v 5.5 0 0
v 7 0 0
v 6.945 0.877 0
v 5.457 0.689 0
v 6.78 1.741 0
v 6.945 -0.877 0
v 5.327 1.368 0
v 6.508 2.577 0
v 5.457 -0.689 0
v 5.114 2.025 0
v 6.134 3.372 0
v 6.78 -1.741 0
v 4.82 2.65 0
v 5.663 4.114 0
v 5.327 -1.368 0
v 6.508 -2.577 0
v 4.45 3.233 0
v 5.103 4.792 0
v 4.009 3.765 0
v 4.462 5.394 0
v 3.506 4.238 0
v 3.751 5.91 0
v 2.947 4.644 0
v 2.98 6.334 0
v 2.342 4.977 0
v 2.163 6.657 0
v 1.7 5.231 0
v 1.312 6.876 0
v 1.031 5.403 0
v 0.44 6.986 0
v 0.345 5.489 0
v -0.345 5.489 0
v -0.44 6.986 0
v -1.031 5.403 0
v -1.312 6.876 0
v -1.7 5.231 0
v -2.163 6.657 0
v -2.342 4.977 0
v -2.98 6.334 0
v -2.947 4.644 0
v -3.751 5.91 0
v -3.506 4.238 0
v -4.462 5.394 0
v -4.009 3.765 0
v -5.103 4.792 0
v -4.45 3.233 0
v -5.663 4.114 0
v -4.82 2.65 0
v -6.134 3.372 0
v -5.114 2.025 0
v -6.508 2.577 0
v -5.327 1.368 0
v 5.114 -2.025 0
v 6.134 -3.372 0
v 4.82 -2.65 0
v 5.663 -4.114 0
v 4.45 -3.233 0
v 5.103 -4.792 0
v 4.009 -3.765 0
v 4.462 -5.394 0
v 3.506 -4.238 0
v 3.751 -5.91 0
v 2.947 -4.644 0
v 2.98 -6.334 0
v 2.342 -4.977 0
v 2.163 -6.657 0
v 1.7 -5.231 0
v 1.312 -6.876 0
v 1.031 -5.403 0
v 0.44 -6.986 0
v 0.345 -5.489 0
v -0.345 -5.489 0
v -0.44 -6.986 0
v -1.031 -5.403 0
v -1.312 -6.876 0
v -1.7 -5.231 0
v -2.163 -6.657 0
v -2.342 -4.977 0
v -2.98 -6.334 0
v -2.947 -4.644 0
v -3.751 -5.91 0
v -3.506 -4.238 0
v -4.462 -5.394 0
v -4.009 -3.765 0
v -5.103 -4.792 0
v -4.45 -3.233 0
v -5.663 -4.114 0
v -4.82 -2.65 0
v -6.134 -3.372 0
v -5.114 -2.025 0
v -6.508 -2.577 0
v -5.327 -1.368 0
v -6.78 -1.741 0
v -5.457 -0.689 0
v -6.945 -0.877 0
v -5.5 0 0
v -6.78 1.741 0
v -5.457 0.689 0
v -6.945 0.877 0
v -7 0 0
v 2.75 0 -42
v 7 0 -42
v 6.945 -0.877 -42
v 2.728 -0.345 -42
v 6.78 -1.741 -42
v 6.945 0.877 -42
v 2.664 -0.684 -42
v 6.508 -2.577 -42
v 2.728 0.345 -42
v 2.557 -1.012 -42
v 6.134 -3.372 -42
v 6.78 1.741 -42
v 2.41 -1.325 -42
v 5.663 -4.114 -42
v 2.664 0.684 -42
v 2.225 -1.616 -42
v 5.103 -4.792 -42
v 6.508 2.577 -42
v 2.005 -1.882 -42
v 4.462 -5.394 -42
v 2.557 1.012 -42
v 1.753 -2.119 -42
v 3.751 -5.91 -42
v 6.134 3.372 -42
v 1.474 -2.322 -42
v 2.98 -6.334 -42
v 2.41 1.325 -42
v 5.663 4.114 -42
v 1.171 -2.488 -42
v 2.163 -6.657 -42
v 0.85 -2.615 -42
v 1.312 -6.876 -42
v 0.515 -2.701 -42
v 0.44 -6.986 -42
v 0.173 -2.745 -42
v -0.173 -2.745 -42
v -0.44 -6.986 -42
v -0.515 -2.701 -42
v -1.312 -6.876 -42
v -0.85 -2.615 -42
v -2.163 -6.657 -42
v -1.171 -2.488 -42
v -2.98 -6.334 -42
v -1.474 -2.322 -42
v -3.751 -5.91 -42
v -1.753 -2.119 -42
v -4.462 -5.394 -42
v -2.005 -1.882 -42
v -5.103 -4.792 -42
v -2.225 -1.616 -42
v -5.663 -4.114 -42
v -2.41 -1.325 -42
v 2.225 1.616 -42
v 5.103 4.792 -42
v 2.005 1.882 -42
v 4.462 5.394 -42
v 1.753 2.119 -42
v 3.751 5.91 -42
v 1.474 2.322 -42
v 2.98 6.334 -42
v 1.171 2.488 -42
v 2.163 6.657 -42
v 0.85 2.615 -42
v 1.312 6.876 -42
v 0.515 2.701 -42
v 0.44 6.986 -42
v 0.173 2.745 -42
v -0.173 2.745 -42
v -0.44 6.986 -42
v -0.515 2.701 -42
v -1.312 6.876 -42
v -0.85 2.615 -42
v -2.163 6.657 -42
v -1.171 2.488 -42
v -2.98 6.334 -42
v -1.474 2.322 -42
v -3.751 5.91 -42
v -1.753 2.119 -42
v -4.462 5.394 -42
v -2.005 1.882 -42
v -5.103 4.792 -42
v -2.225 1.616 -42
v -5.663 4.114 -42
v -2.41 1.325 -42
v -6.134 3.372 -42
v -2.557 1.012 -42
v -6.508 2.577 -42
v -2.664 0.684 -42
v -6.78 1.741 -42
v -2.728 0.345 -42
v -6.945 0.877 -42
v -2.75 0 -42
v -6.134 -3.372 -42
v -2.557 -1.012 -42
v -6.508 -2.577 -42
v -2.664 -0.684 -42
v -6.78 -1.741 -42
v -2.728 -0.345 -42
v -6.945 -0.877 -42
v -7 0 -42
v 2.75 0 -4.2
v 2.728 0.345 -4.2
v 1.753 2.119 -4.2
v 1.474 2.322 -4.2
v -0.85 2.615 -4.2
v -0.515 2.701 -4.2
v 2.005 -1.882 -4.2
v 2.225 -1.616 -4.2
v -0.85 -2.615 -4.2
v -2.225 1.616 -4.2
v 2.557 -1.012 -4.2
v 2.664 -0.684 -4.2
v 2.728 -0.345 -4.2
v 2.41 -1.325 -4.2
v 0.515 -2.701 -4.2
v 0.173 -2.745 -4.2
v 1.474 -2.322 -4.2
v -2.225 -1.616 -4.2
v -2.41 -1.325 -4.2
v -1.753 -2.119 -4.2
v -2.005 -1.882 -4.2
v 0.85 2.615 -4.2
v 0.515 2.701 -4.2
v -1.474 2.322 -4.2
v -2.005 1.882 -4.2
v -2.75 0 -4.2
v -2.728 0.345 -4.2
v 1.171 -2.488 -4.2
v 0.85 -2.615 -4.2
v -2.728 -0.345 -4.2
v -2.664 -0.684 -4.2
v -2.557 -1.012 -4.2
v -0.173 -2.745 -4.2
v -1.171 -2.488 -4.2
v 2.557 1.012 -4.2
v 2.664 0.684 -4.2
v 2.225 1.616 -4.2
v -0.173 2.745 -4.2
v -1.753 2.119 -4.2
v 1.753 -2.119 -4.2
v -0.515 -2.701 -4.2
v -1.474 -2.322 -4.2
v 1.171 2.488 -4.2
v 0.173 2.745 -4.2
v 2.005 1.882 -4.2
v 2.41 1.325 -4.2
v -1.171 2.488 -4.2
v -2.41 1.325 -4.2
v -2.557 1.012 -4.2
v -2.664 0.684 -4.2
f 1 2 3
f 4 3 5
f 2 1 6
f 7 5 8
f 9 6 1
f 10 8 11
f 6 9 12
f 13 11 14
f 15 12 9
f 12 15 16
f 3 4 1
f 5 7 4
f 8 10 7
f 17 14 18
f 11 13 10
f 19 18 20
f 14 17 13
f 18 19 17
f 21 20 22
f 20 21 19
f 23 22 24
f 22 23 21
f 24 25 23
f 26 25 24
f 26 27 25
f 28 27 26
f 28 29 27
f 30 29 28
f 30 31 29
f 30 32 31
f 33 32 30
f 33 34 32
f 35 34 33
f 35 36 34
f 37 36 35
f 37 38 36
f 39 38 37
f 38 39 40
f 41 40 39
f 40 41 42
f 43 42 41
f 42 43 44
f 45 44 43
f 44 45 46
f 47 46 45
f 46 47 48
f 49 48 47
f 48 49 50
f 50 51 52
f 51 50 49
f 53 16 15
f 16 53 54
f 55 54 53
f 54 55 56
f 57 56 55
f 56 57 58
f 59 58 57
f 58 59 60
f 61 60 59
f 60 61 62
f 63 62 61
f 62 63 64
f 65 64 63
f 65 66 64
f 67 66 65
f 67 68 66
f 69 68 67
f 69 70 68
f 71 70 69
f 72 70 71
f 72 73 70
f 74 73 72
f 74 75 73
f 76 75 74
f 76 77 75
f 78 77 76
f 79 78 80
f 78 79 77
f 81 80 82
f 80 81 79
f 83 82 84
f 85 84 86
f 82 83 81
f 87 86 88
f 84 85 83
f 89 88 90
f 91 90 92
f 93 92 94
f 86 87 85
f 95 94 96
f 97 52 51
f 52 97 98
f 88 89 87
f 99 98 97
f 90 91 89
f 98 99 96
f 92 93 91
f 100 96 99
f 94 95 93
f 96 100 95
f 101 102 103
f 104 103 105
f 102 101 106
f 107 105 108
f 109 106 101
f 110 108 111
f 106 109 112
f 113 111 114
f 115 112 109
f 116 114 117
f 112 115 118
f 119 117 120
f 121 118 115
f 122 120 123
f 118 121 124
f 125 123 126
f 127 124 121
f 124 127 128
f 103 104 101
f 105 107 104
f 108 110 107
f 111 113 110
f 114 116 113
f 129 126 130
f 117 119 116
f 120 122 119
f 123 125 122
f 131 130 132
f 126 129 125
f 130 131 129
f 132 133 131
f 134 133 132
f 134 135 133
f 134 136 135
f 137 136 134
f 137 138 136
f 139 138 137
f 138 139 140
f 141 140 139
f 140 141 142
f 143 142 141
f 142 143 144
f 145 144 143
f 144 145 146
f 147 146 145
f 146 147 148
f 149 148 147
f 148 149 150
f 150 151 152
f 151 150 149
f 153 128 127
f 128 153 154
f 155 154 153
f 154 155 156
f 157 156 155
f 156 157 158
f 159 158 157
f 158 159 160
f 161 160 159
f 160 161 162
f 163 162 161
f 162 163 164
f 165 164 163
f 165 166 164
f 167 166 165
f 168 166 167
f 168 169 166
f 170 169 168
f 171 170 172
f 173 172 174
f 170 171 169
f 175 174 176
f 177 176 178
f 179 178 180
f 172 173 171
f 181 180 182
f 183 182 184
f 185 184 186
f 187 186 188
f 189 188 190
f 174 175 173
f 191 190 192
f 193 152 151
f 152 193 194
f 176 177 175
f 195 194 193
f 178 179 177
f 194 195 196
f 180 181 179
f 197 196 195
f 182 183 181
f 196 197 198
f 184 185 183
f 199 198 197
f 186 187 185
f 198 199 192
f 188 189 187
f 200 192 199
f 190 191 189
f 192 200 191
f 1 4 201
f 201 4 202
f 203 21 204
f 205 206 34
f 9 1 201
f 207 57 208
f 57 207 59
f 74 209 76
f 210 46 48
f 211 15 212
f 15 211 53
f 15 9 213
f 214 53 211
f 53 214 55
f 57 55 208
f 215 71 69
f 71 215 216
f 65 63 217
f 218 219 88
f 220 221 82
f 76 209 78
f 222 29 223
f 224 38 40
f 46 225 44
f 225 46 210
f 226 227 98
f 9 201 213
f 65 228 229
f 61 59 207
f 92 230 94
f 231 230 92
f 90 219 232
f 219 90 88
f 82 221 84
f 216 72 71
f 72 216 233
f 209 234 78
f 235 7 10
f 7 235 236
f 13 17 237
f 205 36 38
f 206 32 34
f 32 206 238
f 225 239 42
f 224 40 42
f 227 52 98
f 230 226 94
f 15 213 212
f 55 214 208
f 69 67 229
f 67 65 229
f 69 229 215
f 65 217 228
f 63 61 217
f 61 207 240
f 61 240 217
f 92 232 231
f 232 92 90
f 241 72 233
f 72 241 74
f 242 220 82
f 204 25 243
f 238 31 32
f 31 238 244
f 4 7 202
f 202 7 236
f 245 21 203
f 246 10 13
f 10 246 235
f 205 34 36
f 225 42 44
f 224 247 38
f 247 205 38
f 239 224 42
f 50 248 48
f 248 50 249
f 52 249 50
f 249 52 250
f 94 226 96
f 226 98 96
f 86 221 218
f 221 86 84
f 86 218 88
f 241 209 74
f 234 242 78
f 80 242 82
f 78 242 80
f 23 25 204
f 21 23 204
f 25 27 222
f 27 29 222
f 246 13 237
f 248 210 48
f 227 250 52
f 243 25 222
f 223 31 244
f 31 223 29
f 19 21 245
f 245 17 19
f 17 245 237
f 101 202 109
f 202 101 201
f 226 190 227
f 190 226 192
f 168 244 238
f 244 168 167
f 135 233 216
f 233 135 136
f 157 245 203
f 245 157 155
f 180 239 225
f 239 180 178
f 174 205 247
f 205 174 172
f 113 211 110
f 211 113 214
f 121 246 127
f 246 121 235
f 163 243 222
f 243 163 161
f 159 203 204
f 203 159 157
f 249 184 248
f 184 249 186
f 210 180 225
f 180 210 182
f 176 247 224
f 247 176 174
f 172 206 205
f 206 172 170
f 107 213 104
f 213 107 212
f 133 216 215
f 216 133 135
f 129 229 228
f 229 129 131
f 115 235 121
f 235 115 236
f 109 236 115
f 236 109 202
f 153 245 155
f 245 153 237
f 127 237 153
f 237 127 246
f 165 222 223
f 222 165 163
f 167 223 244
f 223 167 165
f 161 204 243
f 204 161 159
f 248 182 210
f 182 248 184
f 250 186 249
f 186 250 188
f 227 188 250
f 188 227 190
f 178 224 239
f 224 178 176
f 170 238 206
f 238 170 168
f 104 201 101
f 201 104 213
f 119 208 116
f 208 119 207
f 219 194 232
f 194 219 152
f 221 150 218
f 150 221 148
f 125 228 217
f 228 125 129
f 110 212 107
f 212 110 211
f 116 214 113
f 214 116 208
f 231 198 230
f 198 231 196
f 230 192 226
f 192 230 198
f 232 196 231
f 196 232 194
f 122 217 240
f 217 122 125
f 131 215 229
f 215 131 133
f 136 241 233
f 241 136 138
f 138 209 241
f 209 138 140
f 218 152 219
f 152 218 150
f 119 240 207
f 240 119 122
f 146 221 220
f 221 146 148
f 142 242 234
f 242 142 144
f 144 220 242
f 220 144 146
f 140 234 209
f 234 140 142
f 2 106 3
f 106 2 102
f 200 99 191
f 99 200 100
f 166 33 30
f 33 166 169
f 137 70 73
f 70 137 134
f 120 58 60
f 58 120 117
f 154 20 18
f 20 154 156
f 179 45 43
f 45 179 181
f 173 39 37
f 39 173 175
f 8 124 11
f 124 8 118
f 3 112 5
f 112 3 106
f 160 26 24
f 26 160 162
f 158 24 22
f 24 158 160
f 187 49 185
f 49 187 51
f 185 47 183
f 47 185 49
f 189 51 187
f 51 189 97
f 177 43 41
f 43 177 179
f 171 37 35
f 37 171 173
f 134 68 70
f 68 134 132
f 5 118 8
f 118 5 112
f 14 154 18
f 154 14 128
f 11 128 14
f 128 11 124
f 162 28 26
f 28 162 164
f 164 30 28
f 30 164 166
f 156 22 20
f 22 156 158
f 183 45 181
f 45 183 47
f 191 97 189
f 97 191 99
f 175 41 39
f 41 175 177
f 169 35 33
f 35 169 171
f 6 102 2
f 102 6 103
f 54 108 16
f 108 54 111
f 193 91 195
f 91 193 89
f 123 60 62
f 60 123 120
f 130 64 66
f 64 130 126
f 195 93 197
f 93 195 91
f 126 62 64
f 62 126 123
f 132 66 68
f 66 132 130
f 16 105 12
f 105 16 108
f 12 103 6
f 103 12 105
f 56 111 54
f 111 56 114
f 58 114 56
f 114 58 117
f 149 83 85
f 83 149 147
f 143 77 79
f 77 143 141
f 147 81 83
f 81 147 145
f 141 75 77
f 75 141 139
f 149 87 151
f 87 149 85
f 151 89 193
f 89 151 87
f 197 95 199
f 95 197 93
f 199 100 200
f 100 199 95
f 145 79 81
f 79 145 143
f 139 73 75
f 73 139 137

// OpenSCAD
$fn = 50;


difference() {
	union() {
		translate(v = [0, 0, -42.0000000000]) {
			cylinder(h = 42, r = 7.0000000000);
		}
		cylinder(h = 0, r = 16.0000000000);
	}
	union() {
		translate(v = [0, 0, 0]) {
			rotate(a = [0, 0, 0]) {
				difference() {
					union() {
						#translate(v = [0, 0, -42.0000000000]) {
							cylinder(h = 42, r = 2.2500000000);
						}
						#translate(v = [0, 0, -4.2000000000]) {
							cylinder(h = 4.2000000000, r = 7.0000000000, r1 = 2.7500000000, r2 = 5.5000000000);
						}
						#translate(v = [0, 0, -42.0000000000]) {
							cylinder(h = 42, r = 2.7500000000);
						}
						#translate(v = [0, 0, -42.0000000000]) {
							cylinder(h = 42, r = 2.2500000000);
						}
					}
					union();
				}
			}
		}
	}
}
